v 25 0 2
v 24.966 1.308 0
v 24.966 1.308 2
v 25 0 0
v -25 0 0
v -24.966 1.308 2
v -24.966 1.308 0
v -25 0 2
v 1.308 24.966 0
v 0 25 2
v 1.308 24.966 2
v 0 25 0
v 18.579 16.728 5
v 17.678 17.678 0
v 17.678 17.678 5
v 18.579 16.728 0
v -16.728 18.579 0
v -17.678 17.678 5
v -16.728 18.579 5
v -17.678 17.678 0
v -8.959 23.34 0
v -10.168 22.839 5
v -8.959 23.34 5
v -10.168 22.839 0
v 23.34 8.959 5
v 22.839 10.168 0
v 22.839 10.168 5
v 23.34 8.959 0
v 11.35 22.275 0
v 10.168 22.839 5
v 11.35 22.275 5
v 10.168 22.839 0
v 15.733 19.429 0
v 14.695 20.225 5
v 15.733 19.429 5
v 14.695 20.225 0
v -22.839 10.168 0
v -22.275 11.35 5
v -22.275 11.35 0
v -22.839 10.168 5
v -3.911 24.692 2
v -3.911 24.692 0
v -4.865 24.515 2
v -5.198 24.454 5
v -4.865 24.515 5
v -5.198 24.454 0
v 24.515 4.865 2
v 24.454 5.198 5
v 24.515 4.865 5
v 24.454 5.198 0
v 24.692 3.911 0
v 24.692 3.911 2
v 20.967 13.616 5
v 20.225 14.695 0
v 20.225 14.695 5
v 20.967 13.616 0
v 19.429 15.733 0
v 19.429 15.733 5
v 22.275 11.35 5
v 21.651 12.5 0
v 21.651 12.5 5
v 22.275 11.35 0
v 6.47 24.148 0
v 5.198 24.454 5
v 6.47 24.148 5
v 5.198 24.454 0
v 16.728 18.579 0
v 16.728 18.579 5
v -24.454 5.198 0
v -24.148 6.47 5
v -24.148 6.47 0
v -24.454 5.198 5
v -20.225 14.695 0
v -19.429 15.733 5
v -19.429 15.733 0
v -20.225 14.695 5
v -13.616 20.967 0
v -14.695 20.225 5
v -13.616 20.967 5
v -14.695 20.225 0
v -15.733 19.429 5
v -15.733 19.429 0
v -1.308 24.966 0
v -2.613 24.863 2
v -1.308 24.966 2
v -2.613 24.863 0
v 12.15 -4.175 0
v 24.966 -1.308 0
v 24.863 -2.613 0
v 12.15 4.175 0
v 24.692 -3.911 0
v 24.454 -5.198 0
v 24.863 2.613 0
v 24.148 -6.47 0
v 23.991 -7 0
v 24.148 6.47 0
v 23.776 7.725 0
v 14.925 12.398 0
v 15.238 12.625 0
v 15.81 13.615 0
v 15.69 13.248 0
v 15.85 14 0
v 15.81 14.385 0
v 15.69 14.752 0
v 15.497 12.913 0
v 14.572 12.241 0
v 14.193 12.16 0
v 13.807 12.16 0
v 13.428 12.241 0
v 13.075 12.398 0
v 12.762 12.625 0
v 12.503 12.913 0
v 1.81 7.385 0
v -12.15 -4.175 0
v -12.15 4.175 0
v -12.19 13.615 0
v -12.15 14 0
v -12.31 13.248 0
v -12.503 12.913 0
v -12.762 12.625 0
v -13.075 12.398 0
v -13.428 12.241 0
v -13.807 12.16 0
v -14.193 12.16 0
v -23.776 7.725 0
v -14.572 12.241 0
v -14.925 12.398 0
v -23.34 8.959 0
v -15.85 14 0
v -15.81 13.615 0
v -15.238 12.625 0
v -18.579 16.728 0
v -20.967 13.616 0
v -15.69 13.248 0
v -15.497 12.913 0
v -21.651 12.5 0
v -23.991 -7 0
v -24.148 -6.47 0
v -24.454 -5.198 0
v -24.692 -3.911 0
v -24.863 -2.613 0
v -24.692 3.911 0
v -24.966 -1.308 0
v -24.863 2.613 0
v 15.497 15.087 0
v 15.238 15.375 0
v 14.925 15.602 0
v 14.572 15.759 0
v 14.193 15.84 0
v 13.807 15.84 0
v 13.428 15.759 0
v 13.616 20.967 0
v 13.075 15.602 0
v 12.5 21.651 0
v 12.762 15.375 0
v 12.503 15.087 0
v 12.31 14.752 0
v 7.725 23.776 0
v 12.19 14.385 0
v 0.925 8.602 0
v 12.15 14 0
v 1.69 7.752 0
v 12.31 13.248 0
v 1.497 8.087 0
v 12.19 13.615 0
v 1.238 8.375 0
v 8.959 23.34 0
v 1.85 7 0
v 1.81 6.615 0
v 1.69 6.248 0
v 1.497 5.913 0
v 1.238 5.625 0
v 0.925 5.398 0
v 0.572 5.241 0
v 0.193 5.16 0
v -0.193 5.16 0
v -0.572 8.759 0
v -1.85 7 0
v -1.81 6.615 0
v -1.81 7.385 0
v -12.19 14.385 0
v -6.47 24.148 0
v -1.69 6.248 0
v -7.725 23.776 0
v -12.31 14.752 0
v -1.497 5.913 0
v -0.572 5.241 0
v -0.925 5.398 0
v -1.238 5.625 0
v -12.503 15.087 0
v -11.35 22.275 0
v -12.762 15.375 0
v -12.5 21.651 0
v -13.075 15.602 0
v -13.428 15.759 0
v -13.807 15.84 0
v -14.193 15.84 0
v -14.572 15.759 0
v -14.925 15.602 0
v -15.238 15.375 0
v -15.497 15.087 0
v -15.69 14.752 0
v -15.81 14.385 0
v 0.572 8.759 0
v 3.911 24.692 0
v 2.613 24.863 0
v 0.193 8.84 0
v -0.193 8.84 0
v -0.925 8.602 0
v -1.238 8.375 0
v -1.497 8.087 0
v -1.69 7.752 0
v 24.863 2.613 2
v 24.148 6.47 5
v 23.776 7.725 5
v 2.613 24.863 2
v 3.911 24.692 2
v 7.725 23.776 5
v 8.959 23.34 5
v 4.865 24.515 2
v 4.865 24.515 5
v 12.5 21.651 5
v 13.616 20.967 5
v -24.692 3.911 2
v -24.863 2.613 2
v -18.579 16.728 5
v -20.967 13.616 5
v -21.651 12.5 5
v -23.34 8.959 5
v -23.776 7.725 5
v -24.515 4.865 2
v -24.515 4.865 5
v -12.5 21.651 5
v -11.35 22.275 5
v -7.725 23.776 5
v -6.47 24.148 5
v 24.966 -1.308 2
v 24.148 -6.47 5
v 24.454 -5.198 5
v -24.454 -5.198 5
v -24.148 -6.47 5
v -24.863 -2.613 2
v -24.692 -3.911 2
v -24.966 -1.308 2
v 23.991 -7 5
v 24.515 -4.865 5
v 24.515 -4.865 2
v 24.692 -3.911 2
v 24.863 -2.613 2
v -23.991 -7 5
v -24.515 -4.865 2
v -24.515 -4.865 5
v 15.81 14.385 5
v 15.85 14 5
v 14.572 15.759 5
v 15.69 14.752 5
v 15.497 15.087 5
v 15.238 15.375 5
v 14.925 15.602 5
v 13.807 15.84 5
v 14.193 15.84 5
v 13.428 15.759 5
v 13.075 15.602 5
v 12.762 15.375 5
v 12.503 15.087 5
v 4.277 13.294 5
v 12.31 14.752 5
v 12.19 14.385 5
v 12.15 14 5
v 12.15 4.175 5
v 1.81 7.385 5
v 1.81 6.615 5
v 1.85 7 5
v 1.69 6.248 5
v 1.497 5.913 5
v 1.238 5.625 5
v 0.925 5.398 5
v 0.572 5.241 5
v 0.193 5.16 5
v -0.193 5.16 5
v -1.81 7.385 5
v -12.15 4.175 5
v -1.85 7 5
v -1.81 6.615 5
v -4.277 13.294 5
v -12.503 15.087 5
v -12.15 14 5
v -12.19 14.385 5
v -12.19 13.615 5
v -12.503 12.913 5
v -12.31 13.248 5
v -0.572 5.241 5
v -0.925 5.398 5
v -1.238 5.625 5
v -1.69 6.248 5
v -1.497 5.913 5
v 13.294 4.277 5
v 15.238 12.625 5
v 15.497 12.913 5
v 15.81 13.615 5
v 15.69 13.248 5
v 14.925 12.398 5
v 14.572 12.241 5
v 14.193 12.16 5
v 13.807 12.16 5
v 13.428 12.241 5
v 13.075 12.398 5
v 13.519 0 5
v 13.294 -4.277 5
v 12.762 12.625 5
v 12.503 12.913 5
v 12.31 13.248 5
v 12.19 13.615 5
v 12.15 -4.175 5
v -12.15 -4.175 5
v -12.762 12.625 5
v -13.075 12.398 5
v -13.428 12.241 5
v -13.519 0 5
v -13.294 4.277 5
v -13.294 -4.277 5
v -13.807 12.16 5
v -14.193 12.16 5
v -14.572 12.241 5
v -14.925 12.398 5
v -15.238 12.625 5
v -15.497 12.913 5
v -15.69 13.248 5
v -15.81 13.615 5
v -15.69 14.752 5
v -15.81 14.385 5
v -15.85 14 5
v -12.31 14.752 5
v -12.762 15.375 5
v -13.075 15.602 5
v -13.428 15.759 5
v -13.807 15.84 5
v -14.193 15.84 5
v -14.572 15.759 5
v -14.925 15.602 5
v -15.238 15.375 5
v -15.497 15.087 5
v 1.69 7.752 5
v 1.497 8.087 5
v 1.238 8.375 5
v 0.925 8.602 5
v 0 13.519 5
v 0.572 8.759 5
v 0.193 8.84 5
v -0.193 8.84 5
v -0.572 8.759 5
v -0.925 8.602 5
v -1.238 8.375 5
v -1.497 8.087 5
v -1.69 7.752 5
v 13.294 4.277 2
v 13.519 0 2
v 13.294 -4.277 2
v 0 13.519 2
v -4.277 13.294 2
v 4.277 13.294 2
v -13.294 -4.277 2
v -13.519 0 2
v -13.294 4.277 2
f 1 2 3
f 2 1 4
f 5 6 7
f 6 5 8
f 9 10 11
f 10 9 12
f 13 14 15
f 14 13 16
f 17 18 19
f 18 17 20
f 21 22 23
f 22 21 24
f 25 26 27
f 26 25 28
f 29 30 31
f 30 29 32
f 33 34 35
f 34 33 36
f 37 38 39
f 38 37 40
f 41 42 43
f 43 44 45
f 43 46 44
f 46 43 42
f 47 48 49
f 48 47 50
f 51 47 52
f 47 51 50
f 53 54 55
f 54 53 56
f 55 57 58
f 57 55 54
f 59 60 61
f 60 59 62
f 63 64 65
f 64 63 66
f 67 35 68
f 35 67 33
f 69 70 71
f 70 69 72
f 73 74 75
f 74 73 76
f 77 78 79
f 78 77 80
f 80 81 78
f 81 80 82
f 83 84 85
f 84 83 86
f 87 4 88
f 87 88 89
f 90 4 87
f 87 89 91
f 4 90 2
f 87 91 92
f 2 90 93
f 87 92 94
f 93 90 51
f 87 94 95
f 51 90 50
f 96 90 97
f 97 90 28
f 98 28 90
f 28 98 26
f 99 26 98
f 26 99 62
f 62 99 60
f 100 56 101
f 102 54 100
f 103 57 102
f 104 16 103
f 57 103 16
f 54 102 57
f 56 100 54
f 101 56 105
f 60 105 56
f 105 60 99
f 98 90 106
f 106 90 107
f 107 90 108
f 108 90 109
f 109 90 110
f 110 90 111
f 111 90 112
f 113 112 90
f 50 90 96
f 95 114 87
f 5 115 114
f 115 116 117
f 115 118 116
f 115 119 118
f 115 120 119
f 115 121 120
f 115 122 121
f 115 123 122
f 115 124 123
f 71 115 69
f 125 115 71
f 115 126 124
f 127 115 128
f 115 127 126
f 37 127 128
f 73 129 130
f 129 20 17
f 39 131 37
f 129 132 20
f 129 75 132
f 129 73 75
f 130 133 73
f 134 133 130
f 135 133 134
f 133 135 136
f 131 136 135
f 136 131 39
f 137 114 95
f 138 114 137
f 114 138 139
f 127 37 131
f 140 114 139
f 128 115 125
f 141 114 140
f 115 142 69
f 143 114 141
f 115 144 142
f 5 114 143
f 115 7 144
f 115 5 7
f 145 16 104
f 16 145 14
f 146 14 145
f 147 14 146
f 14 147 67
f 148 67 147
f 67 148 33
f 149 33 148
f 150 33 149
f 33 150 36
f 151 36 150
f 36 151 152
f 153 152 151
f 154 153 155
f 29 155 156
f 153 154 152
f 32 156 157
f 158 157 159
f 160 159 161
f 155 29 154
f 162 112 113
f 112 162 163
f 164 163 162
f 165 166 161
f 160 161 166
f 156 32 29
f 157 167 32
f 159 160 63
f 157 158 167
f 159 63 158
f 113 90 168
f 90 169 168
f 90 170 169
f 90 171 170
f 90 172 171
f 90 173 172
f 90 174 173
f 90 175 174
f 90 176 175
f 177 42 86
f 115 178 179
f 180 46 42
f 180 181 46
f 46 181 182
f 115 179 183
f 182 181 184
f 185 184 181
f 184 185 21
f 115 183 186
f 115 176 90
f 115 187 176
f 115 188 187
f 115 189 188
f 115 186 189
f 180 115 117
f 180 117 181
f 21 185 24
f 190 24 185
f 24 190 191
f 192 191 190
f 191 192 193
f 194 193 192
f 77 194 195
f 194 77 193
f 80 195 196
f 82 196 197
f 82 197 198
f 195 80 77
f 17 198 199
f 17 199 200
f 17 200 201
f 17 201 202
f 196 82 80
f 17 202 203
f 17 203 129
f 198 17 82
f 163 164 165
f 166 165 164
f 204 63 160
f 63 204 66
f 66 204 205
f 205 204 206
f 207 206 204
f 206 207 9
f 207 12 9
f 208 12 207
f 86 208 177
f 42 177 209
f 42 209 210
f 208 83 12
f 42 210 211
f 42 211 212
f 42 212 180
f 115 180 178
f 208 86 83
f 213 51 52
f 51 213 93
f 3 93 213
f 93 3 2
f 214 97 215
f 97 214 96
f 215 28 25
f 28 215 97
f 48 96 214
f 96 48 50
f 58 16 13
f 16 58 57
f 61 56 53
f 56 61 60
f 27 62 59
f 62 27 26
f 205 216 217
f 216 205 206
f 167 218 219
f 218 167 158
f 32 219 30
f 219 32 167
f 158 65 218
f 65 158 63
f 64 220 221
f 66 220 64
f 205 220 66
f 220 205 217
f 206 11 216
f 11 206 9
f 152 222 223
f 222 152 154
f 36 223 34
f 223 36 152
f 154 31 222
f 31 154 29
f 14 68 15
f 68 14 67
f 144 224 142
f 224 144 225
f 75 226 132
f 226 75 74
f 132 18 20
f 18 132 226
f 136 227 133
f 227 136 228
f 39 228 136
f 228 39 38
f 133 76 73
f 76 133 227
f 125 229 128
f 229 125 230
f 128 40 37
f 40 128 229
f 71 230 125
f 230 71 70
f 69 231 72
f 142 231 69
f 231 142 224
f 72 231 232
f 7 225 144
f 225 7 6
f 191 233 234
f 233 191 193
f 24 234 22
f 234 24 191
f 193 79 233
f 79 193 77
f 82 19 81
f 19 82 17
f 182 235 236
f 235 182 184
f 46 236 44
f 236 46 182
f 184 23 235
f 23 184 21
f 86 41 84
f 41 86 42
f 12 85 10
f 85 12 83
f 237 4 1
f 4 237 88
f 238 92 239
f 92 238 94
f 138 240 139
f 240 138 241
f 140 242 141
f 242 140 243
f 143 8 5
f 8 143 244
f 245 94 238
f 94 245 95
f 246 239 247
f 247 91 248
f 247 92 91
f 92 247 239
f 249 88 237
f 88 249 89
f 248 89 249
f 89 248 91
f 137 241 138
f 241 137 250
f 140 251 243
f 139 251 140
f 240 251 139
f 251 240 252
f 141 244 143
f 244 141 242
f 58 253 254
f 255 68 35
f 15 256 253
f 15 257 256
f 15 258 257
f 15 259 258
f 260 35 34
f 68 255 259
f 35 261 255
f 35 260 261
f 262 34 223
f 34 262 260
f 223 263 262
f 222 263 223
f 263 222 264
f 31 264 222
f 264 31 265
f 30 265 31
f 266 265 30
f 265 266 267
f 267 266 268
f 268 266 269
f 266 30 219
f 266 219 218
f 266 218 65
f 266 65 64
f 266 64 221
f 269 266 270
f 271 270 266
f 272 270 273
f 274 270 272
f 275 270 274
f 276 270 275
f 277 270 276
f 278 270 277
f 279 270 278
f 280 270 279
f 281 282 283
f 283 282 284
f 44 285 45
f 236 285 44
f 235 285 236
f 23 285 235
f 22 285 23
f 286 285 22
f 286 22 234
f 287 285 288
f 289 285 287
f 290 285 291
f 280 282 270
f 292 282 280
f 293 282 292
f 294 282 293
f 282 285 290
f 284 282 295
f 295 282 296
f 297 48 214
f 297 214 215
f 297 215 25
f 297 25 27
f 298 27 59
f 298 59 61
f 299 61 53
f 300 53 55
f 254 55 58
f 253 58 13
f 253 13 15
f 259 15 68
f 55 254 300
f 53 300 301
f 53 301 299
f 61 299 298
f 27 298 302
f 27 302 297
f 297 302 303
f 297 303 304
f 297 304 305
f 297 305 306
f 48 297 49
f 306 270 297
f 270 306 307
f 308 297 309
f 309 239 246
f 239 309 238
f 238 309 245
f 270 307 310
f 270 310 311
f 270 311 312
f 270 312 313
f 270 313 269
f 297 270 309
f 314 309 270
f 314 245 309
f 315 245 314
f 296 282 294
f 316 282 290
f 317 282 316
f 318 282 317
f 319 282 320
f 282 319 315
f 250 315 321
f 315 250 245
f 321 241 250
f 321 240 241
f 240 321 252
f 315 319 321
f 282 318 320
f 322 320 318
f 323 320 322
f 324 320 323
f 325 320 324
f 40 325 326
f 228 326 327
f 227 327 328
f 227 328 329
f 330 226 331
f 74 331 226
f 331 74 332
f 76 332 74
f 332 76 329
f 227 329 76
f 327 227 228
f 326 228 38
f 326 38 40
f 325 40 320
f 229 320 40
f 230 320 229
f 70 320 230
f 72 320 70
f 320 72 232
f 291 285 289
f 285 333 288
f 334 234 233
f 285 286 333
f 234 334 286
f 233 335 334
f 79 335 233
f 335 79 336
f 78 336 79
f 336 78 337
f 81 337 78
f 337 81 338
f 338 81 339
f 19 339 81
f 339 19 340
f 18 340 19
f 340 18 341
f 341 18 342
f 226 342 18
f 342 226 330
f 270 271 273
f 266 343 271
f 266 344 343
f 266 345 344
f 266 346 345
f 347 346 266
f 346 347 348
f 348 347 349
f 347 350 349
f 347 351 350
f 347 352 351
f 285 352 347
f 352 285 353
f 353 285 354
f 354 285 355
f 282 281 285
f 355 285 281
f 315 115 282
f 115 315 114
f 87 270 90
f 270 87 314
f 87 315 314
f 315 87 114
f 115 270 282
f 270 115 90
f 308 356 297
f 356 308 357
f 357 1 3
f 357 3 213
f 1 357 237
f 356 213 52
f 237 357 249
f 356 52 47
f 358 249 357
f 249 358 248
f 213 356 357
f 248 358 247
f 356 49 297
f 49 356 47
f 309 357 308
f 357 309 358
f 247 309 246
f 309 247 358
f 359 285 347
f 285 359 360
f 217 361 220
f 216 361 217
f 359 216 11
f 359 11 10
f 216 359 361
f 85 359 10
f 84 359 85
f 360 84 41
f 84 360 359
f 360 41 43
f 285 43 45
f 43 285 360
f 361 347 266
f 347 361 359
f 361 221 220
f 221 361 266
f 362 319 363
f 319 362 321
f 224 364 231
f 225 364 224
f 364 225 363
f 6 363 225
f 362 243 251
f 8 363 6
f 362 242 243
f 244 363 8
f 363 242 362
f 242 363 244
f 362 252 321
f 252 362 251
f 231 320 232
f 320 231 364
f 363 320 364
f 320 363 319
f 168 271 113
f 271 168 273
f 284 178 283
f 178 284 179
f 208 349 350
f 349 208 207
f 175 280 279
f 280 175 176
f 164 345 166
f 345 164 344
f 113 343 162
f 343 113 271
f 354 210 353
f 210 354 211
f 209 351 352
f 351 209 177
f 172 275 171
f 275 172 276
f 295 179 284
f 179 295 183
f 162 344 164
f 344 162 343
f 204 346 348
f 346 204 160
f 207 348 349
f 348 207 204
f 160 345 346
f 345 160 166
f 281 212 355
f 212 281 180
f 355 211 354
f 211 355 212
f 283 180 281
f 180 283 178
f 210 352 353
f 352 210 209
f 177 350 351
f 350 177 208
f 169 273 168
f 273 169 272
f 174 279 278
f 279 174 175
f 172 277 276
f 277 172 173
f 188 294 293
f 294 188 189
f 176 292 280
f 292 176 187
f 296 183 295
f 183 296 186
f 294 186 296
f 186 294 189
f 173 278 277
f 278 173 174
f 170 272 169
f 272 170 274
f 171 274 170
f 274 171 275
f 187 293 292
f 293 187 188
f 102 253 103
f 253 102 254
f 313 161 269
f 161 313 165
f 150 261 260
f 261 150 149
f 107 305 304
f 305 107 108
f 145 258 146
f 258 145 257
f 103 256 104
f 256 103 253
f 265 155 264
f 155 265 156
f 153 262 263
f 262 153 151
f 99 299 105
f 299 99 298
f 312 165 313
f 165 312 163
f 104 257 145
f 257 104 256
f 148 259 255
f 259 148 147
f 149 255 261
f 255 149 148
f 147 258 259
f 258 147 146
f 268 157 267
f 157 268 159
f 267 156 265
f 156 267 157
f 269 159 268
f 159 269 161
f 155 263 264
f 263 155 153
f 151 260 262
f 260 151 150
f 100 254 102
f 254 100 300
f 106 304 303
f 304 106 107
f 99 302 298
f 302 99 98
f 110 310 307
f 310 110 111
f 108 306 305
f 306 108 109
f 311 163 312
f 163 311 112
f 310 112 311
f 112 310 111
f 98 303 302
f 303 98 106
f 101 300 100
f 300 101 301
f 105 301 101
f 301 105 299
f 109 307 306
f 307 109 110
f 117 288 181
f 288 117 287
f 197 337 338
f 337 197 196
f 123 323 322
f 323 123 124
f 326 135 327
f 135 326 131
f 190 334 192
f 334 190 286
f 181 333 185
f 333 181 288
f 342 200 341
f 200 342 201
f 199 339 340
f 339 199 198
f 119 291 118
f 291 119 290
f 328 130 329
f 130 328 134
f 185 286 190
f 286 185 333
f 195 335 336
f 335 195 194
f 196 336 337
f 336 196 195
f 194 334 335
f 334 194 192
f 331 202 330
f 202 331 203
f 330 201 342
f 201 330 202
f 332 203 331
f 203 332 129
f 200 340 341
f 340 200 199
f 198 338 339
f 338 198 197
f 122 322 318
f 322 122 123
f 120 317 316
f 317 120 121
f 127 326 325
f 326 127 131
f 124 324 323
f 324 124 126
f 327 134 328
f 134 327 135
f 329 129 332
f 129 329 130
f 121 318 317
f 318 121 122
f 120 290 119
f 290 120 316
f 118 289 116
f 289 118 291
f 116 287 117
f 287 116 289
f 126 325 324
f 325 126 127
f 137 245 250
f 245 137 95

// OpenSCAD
difference(){

e=3; // holgura

cylinder(d=50,h=5,$fn=120);
cube([24.3,8.35,12],center=true);

rotate([0,0,e])translate([25.5,-.6,8])
cube([24,8.35,12],center=true);
rotate([0,0,-e])translate([25.5,0.6,8])
cube([24,8.35,12],center=true);

rotate([0,0,90+e])translate([25.5,-.6,8])
cube([24,8.35,12],center=true);
rotate([0,0,90-e])translate([25.5,0.6,8])
cube([24,8.35,12],center=true);

rotate([0,0,180+e])translate([25.5,-0.6,8])
cube([24,8.35,12],center=true);
rotate([0,0,180-e])translate([25.5,0.6,8])
cube([24,8.35,12],center=true);

translate([0,7,-1])cylinder(d=3.7,h=10,$fn=30);
translate([14,14,-1])cylinder(d=3.7,h=10,$fn=30);
translate([-14,14,-1])cylinder(d=3.7,h=10,$fn=30);

translate([0,-31,0])cube([54,48,12],center=true);
}
